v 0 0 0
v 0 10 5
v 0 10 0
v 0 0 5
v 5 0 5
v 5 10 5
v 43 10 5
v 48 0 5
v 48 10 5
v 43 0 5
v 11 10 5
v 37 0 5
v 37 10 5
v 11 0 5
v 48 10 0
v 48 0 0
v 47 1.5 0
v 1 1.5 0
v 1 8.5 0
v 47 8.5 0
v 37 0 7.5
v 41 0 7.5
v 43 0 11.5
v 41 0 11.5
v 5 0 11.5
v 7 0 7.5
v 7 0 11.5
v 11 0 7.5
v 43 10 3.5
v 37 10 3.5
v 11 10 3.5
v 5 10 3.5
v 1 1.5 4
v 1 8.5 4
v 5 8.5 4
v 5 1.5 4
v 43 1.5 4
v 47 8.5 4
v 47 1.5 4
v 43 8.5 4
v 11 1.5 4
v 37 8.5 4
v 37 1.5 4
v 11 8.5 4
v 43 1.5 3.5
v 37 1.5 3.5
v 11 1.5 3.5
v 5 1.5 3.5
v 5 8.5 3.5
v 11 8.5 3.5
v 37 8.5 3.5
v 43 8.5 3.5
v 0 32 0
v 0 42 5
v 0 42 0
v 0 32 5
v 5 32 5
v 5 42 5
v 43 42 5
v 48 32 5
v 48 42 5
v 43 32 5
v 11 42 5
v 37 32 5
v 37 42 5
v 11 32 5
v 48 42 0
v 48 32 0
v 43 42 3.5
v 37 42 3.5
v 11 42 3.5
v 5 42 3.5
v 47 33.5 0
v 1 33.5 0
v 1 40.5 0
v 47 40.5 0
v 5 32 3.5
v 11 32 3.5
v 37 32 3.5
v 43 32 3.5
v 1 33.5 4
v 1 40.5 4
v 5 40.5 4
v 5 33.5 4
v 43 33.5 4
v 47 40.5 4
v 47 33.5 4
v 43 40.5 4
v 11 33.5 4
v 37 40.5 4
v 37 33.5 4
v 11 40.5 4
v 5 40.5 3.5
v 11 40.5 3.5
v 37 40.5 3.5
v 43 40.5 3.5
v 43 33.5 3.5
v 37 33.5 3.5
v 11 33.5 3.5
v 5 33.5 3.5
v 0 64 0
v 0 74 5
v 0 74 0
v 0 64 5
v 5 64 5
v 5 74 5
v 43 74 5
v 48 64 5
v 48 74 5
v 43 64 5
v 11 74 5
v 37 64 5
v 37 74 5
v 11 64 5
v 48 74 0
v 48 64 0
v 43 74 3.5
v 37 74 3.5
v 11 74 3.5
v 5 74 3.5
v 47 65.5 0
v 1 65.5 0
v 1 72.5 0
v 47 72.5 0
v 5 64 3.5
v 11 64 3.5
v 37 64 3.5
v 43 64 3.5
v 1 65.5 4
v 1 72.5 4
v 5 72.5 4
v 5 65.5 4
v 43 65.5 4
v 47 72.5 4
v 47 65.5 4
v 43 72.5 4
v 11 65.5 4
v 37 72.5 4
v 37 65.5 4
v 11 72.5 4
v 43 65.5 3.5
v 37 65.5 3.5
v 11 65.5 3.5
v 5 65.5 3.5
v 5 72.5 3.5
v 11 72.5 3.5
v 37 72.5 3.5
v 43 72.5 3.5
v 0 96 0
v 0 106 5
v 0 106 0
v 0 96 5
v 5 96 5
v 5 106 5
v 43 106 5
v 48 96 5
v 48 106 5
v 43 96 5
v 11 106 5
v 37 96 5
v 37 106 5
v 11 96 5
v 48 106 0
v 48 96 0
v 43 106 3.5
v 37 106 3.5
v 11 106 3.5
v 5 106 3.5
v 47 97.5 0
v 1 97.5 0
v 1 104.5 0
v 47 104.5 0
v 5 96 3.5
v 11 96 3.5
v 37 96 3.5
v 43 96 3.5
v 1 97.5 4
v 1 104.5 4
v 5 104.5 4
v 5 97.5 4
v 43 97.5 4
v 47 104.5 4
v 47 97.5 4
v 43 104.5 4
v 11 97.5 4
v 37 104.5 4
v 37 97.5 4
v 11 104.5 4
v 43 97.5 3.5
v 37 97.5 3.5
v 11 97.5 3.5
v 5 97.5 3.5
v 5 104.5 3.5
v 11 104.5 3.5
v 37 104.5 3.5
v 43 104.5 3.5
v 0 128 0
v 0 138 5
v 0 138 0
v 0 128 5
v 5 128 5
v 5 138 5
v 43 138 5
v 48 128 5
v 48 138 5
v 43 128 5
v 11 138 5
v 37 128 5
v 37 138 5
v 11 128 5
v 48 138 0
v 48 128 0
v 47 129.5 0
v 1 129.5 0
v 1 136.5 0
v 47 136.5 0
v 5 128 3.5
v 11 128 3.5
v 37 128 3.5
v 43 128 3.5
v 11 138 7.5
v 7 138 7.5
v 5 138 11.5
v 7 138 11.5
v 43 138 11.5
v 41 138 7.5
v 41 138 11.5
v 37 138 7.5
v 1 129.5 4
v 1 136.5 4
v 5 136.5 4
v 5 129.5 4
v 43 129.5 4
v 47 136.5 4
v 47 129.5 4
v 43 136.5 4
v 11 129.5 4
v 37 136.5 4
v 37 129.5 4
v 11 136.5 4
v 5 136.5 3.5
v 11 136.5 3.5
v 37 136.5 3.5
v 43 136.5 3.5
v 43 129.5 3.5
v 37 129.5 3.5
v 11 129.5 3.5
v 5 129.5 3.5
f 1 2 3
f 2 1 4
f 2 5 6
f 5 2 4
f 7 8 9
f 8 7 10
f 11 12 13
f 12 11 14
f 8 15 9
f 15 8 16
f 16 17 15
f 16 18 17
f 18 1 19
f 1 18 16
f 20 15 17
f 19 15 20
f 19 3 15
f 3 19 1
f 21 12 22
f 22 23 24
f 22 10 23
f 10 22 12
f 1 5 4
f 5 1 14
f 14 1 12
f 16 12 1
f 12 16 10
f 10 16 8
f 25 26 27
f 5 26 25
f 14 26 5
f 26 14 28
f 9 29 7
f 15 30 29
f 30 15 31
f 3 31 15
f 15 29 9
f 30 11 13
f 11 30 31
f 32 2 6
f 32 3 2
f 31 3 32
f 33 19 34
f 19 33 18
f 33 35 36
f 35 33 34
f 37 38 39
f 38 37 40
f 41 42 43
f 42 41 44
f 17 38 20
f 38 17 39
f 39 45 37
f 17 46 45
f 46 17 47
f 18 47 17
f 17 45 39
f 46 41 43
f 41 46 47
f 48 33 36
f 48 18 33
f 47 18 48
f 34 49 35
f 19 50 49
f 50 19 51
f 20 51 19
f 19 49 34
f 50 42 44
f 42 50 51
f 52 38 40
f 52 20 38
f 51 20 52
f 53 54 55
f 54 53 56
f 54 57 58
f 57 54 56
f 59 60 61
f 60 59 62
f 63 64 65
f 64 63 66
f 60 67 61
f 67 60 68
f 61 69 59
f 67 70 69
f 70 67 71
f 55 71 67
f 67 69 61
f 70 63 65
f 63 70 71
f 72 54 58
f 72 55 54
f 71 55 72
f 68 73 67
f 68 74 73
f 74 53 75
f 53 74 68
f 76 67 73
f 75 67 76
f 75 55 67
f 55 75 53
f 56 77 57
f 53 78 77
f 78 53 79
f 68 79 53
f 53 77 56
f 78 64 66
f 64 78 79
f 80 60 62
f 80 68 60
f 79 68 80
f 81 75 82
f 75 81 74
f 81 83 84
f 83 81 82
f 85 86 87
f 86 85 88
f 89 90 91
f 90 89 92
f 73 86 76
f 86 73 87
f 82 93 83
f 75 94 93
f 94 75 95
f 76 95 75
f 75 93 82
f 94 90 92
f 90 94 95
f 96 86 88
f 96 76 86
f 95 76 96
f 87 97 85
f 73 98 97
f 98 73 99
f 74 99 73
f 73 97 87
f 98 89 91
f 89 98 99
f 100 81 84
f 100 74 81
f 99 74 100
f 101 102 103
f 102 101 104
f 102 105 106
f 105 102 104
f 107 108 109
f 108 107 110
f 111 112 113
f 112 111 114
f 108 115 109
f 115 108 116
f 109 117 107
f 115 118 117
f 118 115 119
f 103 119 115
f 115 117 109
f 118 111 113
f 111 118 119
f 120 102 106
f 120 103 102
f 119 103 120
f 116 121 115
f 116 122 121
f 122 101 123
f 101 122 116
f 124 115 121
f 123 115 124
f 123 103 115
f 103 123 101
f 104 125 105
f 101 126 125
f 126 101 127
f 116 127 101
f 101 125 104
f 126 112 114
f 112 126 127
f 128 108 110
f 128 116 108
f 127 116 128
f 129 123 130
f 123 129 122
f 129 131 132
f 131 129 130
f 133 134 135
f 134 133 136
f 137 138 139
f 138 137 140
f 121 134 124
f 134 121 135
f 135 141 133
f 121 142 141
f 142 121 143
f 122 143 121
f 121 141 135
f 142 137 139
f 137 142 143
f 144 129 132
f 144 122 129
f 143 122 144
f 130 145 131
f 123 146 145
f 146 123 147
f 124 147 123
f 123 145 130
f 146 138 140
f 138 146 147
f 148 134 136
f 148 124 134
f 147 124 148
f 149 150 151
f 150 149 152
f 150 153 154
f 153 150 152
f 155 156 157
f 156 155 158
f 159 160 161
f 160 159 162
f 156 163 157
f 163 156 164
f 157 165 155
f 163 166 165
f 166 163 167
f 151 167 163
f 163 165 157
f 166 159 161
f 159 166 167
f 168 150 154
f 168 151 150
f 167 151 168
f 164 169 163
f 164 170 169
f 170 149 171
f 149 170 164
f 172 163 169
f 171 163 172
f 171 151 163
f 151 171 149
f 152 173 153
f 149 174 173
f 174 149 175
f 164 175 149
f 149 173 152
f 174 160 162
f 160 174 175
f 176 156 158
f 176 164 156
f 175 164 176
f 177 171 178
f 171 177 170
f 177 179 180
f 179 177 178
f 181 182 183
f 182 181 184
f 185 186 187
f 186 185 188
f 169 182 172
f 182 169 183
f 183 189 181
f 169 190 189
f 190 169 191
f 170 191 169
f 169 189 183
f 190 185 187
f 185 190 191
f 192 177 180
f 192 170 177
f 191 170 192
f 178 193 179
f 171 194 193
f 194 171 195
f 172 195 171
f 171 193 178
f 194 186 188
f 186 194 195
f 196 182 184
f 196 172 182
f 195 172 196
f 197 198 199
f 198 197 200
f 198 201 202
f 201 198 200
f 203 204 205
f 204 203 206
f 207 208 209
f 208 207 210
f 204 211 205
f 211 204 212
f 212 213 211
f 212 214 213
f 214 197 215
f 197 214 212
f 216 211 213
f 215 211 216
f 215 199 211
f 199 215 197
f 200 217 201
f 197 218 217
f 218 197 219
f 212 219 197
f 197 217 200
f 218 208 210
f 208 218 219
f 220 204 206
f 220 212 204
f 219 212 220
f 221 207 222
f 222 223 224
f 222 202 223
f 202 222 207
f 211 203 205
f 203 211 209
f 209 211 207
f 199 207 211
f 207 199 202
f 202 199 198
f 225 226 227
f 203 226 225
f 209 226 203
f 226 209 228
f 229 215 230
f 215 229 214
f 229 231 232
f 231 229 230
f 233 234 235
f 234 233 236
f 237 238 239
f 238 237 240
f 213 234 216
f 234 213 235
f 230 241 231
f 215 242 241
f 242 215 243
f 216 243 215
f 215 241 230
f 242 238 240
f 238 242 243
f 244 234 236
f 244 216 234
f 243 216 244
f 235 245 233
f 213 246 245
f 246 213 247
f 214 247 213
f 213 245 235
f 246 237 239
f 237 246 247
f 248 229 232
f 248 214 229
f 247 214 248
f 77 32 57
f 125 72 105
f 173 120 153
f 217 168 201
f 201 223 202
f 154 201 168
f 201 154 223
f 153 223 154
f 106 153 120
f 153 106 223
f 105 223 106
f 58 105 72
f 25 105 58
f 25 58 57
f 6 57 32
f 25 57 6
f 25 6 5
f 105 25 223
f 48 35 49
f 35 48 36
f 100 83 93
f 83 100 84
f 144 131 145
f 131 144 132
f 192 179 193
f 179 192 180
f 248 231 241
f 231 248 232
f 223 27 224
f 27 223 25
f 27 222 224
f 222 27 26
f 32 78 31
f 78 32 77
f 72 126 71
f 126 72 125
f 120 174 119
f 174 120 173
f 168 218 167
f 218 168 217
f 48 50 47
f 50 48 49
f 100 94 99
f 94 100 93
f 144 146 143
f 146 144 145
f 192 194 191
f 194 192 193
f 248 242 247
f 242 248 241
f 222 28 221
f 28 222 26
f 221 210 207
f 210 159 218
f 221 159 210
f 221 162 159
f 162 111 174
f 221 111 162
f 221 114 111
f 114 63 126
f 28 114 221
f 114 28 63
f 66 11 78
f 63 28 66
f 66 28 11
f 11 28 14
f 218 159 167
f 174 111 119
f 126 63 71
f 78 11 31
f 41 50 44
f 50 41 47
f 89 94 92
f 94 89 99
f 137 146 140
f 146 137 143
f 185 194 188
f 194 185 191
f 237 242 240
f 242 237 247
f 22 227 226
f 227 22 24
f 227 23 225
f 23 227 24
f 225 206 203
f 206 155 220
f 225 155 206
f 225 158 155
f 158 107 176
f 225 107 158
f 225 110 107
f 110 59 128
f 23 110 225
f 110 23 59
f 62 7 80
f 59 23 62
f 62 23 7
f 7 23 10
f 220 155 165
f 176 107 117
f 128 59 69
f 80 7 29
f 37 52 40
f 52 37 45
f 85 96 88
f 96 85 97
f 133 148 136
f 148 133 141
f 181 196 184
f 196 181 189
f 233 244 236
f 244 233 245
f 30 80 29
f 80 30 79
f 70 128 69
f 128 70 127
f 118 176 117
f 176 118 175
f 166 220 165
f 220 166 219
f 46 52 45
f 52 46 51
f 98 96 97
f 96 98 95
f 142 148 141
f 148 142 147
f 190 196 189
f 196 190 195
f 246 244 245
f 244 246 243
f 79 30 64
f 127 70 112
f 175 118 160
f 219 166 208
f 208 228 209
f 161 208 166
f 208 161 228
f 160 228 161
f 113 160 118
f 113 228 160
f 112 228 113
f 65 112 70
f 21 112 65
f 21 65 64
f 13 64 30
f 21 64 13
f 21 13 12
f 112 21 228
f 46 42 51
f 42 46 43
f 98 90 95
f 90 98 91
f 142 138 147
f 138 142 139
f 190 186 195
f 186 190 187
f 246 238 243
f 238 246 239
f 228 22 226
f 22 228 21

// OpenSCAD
//tout en dure puis je ferais des variables + refactoring
// difference() {cube([48,10,5]);translate ([1,1,0])cube([46,8,4]);}
for (i = [0:4]) {
	difference() {
		translate ([0,32*i,0]) cube([48,10,5]);
		translate ([1,(32*i)+1.5,0]) cube([46,7,4]);
	}
}
	translate ([5,0,3.5]) union() {
		cube([2,138,8]);cube([6,138,4]);
	} 
translate ([37,0,3.5])  
	union() {translate([4,0,0])cube([2,138,8]);cube([6,138,4]);}
